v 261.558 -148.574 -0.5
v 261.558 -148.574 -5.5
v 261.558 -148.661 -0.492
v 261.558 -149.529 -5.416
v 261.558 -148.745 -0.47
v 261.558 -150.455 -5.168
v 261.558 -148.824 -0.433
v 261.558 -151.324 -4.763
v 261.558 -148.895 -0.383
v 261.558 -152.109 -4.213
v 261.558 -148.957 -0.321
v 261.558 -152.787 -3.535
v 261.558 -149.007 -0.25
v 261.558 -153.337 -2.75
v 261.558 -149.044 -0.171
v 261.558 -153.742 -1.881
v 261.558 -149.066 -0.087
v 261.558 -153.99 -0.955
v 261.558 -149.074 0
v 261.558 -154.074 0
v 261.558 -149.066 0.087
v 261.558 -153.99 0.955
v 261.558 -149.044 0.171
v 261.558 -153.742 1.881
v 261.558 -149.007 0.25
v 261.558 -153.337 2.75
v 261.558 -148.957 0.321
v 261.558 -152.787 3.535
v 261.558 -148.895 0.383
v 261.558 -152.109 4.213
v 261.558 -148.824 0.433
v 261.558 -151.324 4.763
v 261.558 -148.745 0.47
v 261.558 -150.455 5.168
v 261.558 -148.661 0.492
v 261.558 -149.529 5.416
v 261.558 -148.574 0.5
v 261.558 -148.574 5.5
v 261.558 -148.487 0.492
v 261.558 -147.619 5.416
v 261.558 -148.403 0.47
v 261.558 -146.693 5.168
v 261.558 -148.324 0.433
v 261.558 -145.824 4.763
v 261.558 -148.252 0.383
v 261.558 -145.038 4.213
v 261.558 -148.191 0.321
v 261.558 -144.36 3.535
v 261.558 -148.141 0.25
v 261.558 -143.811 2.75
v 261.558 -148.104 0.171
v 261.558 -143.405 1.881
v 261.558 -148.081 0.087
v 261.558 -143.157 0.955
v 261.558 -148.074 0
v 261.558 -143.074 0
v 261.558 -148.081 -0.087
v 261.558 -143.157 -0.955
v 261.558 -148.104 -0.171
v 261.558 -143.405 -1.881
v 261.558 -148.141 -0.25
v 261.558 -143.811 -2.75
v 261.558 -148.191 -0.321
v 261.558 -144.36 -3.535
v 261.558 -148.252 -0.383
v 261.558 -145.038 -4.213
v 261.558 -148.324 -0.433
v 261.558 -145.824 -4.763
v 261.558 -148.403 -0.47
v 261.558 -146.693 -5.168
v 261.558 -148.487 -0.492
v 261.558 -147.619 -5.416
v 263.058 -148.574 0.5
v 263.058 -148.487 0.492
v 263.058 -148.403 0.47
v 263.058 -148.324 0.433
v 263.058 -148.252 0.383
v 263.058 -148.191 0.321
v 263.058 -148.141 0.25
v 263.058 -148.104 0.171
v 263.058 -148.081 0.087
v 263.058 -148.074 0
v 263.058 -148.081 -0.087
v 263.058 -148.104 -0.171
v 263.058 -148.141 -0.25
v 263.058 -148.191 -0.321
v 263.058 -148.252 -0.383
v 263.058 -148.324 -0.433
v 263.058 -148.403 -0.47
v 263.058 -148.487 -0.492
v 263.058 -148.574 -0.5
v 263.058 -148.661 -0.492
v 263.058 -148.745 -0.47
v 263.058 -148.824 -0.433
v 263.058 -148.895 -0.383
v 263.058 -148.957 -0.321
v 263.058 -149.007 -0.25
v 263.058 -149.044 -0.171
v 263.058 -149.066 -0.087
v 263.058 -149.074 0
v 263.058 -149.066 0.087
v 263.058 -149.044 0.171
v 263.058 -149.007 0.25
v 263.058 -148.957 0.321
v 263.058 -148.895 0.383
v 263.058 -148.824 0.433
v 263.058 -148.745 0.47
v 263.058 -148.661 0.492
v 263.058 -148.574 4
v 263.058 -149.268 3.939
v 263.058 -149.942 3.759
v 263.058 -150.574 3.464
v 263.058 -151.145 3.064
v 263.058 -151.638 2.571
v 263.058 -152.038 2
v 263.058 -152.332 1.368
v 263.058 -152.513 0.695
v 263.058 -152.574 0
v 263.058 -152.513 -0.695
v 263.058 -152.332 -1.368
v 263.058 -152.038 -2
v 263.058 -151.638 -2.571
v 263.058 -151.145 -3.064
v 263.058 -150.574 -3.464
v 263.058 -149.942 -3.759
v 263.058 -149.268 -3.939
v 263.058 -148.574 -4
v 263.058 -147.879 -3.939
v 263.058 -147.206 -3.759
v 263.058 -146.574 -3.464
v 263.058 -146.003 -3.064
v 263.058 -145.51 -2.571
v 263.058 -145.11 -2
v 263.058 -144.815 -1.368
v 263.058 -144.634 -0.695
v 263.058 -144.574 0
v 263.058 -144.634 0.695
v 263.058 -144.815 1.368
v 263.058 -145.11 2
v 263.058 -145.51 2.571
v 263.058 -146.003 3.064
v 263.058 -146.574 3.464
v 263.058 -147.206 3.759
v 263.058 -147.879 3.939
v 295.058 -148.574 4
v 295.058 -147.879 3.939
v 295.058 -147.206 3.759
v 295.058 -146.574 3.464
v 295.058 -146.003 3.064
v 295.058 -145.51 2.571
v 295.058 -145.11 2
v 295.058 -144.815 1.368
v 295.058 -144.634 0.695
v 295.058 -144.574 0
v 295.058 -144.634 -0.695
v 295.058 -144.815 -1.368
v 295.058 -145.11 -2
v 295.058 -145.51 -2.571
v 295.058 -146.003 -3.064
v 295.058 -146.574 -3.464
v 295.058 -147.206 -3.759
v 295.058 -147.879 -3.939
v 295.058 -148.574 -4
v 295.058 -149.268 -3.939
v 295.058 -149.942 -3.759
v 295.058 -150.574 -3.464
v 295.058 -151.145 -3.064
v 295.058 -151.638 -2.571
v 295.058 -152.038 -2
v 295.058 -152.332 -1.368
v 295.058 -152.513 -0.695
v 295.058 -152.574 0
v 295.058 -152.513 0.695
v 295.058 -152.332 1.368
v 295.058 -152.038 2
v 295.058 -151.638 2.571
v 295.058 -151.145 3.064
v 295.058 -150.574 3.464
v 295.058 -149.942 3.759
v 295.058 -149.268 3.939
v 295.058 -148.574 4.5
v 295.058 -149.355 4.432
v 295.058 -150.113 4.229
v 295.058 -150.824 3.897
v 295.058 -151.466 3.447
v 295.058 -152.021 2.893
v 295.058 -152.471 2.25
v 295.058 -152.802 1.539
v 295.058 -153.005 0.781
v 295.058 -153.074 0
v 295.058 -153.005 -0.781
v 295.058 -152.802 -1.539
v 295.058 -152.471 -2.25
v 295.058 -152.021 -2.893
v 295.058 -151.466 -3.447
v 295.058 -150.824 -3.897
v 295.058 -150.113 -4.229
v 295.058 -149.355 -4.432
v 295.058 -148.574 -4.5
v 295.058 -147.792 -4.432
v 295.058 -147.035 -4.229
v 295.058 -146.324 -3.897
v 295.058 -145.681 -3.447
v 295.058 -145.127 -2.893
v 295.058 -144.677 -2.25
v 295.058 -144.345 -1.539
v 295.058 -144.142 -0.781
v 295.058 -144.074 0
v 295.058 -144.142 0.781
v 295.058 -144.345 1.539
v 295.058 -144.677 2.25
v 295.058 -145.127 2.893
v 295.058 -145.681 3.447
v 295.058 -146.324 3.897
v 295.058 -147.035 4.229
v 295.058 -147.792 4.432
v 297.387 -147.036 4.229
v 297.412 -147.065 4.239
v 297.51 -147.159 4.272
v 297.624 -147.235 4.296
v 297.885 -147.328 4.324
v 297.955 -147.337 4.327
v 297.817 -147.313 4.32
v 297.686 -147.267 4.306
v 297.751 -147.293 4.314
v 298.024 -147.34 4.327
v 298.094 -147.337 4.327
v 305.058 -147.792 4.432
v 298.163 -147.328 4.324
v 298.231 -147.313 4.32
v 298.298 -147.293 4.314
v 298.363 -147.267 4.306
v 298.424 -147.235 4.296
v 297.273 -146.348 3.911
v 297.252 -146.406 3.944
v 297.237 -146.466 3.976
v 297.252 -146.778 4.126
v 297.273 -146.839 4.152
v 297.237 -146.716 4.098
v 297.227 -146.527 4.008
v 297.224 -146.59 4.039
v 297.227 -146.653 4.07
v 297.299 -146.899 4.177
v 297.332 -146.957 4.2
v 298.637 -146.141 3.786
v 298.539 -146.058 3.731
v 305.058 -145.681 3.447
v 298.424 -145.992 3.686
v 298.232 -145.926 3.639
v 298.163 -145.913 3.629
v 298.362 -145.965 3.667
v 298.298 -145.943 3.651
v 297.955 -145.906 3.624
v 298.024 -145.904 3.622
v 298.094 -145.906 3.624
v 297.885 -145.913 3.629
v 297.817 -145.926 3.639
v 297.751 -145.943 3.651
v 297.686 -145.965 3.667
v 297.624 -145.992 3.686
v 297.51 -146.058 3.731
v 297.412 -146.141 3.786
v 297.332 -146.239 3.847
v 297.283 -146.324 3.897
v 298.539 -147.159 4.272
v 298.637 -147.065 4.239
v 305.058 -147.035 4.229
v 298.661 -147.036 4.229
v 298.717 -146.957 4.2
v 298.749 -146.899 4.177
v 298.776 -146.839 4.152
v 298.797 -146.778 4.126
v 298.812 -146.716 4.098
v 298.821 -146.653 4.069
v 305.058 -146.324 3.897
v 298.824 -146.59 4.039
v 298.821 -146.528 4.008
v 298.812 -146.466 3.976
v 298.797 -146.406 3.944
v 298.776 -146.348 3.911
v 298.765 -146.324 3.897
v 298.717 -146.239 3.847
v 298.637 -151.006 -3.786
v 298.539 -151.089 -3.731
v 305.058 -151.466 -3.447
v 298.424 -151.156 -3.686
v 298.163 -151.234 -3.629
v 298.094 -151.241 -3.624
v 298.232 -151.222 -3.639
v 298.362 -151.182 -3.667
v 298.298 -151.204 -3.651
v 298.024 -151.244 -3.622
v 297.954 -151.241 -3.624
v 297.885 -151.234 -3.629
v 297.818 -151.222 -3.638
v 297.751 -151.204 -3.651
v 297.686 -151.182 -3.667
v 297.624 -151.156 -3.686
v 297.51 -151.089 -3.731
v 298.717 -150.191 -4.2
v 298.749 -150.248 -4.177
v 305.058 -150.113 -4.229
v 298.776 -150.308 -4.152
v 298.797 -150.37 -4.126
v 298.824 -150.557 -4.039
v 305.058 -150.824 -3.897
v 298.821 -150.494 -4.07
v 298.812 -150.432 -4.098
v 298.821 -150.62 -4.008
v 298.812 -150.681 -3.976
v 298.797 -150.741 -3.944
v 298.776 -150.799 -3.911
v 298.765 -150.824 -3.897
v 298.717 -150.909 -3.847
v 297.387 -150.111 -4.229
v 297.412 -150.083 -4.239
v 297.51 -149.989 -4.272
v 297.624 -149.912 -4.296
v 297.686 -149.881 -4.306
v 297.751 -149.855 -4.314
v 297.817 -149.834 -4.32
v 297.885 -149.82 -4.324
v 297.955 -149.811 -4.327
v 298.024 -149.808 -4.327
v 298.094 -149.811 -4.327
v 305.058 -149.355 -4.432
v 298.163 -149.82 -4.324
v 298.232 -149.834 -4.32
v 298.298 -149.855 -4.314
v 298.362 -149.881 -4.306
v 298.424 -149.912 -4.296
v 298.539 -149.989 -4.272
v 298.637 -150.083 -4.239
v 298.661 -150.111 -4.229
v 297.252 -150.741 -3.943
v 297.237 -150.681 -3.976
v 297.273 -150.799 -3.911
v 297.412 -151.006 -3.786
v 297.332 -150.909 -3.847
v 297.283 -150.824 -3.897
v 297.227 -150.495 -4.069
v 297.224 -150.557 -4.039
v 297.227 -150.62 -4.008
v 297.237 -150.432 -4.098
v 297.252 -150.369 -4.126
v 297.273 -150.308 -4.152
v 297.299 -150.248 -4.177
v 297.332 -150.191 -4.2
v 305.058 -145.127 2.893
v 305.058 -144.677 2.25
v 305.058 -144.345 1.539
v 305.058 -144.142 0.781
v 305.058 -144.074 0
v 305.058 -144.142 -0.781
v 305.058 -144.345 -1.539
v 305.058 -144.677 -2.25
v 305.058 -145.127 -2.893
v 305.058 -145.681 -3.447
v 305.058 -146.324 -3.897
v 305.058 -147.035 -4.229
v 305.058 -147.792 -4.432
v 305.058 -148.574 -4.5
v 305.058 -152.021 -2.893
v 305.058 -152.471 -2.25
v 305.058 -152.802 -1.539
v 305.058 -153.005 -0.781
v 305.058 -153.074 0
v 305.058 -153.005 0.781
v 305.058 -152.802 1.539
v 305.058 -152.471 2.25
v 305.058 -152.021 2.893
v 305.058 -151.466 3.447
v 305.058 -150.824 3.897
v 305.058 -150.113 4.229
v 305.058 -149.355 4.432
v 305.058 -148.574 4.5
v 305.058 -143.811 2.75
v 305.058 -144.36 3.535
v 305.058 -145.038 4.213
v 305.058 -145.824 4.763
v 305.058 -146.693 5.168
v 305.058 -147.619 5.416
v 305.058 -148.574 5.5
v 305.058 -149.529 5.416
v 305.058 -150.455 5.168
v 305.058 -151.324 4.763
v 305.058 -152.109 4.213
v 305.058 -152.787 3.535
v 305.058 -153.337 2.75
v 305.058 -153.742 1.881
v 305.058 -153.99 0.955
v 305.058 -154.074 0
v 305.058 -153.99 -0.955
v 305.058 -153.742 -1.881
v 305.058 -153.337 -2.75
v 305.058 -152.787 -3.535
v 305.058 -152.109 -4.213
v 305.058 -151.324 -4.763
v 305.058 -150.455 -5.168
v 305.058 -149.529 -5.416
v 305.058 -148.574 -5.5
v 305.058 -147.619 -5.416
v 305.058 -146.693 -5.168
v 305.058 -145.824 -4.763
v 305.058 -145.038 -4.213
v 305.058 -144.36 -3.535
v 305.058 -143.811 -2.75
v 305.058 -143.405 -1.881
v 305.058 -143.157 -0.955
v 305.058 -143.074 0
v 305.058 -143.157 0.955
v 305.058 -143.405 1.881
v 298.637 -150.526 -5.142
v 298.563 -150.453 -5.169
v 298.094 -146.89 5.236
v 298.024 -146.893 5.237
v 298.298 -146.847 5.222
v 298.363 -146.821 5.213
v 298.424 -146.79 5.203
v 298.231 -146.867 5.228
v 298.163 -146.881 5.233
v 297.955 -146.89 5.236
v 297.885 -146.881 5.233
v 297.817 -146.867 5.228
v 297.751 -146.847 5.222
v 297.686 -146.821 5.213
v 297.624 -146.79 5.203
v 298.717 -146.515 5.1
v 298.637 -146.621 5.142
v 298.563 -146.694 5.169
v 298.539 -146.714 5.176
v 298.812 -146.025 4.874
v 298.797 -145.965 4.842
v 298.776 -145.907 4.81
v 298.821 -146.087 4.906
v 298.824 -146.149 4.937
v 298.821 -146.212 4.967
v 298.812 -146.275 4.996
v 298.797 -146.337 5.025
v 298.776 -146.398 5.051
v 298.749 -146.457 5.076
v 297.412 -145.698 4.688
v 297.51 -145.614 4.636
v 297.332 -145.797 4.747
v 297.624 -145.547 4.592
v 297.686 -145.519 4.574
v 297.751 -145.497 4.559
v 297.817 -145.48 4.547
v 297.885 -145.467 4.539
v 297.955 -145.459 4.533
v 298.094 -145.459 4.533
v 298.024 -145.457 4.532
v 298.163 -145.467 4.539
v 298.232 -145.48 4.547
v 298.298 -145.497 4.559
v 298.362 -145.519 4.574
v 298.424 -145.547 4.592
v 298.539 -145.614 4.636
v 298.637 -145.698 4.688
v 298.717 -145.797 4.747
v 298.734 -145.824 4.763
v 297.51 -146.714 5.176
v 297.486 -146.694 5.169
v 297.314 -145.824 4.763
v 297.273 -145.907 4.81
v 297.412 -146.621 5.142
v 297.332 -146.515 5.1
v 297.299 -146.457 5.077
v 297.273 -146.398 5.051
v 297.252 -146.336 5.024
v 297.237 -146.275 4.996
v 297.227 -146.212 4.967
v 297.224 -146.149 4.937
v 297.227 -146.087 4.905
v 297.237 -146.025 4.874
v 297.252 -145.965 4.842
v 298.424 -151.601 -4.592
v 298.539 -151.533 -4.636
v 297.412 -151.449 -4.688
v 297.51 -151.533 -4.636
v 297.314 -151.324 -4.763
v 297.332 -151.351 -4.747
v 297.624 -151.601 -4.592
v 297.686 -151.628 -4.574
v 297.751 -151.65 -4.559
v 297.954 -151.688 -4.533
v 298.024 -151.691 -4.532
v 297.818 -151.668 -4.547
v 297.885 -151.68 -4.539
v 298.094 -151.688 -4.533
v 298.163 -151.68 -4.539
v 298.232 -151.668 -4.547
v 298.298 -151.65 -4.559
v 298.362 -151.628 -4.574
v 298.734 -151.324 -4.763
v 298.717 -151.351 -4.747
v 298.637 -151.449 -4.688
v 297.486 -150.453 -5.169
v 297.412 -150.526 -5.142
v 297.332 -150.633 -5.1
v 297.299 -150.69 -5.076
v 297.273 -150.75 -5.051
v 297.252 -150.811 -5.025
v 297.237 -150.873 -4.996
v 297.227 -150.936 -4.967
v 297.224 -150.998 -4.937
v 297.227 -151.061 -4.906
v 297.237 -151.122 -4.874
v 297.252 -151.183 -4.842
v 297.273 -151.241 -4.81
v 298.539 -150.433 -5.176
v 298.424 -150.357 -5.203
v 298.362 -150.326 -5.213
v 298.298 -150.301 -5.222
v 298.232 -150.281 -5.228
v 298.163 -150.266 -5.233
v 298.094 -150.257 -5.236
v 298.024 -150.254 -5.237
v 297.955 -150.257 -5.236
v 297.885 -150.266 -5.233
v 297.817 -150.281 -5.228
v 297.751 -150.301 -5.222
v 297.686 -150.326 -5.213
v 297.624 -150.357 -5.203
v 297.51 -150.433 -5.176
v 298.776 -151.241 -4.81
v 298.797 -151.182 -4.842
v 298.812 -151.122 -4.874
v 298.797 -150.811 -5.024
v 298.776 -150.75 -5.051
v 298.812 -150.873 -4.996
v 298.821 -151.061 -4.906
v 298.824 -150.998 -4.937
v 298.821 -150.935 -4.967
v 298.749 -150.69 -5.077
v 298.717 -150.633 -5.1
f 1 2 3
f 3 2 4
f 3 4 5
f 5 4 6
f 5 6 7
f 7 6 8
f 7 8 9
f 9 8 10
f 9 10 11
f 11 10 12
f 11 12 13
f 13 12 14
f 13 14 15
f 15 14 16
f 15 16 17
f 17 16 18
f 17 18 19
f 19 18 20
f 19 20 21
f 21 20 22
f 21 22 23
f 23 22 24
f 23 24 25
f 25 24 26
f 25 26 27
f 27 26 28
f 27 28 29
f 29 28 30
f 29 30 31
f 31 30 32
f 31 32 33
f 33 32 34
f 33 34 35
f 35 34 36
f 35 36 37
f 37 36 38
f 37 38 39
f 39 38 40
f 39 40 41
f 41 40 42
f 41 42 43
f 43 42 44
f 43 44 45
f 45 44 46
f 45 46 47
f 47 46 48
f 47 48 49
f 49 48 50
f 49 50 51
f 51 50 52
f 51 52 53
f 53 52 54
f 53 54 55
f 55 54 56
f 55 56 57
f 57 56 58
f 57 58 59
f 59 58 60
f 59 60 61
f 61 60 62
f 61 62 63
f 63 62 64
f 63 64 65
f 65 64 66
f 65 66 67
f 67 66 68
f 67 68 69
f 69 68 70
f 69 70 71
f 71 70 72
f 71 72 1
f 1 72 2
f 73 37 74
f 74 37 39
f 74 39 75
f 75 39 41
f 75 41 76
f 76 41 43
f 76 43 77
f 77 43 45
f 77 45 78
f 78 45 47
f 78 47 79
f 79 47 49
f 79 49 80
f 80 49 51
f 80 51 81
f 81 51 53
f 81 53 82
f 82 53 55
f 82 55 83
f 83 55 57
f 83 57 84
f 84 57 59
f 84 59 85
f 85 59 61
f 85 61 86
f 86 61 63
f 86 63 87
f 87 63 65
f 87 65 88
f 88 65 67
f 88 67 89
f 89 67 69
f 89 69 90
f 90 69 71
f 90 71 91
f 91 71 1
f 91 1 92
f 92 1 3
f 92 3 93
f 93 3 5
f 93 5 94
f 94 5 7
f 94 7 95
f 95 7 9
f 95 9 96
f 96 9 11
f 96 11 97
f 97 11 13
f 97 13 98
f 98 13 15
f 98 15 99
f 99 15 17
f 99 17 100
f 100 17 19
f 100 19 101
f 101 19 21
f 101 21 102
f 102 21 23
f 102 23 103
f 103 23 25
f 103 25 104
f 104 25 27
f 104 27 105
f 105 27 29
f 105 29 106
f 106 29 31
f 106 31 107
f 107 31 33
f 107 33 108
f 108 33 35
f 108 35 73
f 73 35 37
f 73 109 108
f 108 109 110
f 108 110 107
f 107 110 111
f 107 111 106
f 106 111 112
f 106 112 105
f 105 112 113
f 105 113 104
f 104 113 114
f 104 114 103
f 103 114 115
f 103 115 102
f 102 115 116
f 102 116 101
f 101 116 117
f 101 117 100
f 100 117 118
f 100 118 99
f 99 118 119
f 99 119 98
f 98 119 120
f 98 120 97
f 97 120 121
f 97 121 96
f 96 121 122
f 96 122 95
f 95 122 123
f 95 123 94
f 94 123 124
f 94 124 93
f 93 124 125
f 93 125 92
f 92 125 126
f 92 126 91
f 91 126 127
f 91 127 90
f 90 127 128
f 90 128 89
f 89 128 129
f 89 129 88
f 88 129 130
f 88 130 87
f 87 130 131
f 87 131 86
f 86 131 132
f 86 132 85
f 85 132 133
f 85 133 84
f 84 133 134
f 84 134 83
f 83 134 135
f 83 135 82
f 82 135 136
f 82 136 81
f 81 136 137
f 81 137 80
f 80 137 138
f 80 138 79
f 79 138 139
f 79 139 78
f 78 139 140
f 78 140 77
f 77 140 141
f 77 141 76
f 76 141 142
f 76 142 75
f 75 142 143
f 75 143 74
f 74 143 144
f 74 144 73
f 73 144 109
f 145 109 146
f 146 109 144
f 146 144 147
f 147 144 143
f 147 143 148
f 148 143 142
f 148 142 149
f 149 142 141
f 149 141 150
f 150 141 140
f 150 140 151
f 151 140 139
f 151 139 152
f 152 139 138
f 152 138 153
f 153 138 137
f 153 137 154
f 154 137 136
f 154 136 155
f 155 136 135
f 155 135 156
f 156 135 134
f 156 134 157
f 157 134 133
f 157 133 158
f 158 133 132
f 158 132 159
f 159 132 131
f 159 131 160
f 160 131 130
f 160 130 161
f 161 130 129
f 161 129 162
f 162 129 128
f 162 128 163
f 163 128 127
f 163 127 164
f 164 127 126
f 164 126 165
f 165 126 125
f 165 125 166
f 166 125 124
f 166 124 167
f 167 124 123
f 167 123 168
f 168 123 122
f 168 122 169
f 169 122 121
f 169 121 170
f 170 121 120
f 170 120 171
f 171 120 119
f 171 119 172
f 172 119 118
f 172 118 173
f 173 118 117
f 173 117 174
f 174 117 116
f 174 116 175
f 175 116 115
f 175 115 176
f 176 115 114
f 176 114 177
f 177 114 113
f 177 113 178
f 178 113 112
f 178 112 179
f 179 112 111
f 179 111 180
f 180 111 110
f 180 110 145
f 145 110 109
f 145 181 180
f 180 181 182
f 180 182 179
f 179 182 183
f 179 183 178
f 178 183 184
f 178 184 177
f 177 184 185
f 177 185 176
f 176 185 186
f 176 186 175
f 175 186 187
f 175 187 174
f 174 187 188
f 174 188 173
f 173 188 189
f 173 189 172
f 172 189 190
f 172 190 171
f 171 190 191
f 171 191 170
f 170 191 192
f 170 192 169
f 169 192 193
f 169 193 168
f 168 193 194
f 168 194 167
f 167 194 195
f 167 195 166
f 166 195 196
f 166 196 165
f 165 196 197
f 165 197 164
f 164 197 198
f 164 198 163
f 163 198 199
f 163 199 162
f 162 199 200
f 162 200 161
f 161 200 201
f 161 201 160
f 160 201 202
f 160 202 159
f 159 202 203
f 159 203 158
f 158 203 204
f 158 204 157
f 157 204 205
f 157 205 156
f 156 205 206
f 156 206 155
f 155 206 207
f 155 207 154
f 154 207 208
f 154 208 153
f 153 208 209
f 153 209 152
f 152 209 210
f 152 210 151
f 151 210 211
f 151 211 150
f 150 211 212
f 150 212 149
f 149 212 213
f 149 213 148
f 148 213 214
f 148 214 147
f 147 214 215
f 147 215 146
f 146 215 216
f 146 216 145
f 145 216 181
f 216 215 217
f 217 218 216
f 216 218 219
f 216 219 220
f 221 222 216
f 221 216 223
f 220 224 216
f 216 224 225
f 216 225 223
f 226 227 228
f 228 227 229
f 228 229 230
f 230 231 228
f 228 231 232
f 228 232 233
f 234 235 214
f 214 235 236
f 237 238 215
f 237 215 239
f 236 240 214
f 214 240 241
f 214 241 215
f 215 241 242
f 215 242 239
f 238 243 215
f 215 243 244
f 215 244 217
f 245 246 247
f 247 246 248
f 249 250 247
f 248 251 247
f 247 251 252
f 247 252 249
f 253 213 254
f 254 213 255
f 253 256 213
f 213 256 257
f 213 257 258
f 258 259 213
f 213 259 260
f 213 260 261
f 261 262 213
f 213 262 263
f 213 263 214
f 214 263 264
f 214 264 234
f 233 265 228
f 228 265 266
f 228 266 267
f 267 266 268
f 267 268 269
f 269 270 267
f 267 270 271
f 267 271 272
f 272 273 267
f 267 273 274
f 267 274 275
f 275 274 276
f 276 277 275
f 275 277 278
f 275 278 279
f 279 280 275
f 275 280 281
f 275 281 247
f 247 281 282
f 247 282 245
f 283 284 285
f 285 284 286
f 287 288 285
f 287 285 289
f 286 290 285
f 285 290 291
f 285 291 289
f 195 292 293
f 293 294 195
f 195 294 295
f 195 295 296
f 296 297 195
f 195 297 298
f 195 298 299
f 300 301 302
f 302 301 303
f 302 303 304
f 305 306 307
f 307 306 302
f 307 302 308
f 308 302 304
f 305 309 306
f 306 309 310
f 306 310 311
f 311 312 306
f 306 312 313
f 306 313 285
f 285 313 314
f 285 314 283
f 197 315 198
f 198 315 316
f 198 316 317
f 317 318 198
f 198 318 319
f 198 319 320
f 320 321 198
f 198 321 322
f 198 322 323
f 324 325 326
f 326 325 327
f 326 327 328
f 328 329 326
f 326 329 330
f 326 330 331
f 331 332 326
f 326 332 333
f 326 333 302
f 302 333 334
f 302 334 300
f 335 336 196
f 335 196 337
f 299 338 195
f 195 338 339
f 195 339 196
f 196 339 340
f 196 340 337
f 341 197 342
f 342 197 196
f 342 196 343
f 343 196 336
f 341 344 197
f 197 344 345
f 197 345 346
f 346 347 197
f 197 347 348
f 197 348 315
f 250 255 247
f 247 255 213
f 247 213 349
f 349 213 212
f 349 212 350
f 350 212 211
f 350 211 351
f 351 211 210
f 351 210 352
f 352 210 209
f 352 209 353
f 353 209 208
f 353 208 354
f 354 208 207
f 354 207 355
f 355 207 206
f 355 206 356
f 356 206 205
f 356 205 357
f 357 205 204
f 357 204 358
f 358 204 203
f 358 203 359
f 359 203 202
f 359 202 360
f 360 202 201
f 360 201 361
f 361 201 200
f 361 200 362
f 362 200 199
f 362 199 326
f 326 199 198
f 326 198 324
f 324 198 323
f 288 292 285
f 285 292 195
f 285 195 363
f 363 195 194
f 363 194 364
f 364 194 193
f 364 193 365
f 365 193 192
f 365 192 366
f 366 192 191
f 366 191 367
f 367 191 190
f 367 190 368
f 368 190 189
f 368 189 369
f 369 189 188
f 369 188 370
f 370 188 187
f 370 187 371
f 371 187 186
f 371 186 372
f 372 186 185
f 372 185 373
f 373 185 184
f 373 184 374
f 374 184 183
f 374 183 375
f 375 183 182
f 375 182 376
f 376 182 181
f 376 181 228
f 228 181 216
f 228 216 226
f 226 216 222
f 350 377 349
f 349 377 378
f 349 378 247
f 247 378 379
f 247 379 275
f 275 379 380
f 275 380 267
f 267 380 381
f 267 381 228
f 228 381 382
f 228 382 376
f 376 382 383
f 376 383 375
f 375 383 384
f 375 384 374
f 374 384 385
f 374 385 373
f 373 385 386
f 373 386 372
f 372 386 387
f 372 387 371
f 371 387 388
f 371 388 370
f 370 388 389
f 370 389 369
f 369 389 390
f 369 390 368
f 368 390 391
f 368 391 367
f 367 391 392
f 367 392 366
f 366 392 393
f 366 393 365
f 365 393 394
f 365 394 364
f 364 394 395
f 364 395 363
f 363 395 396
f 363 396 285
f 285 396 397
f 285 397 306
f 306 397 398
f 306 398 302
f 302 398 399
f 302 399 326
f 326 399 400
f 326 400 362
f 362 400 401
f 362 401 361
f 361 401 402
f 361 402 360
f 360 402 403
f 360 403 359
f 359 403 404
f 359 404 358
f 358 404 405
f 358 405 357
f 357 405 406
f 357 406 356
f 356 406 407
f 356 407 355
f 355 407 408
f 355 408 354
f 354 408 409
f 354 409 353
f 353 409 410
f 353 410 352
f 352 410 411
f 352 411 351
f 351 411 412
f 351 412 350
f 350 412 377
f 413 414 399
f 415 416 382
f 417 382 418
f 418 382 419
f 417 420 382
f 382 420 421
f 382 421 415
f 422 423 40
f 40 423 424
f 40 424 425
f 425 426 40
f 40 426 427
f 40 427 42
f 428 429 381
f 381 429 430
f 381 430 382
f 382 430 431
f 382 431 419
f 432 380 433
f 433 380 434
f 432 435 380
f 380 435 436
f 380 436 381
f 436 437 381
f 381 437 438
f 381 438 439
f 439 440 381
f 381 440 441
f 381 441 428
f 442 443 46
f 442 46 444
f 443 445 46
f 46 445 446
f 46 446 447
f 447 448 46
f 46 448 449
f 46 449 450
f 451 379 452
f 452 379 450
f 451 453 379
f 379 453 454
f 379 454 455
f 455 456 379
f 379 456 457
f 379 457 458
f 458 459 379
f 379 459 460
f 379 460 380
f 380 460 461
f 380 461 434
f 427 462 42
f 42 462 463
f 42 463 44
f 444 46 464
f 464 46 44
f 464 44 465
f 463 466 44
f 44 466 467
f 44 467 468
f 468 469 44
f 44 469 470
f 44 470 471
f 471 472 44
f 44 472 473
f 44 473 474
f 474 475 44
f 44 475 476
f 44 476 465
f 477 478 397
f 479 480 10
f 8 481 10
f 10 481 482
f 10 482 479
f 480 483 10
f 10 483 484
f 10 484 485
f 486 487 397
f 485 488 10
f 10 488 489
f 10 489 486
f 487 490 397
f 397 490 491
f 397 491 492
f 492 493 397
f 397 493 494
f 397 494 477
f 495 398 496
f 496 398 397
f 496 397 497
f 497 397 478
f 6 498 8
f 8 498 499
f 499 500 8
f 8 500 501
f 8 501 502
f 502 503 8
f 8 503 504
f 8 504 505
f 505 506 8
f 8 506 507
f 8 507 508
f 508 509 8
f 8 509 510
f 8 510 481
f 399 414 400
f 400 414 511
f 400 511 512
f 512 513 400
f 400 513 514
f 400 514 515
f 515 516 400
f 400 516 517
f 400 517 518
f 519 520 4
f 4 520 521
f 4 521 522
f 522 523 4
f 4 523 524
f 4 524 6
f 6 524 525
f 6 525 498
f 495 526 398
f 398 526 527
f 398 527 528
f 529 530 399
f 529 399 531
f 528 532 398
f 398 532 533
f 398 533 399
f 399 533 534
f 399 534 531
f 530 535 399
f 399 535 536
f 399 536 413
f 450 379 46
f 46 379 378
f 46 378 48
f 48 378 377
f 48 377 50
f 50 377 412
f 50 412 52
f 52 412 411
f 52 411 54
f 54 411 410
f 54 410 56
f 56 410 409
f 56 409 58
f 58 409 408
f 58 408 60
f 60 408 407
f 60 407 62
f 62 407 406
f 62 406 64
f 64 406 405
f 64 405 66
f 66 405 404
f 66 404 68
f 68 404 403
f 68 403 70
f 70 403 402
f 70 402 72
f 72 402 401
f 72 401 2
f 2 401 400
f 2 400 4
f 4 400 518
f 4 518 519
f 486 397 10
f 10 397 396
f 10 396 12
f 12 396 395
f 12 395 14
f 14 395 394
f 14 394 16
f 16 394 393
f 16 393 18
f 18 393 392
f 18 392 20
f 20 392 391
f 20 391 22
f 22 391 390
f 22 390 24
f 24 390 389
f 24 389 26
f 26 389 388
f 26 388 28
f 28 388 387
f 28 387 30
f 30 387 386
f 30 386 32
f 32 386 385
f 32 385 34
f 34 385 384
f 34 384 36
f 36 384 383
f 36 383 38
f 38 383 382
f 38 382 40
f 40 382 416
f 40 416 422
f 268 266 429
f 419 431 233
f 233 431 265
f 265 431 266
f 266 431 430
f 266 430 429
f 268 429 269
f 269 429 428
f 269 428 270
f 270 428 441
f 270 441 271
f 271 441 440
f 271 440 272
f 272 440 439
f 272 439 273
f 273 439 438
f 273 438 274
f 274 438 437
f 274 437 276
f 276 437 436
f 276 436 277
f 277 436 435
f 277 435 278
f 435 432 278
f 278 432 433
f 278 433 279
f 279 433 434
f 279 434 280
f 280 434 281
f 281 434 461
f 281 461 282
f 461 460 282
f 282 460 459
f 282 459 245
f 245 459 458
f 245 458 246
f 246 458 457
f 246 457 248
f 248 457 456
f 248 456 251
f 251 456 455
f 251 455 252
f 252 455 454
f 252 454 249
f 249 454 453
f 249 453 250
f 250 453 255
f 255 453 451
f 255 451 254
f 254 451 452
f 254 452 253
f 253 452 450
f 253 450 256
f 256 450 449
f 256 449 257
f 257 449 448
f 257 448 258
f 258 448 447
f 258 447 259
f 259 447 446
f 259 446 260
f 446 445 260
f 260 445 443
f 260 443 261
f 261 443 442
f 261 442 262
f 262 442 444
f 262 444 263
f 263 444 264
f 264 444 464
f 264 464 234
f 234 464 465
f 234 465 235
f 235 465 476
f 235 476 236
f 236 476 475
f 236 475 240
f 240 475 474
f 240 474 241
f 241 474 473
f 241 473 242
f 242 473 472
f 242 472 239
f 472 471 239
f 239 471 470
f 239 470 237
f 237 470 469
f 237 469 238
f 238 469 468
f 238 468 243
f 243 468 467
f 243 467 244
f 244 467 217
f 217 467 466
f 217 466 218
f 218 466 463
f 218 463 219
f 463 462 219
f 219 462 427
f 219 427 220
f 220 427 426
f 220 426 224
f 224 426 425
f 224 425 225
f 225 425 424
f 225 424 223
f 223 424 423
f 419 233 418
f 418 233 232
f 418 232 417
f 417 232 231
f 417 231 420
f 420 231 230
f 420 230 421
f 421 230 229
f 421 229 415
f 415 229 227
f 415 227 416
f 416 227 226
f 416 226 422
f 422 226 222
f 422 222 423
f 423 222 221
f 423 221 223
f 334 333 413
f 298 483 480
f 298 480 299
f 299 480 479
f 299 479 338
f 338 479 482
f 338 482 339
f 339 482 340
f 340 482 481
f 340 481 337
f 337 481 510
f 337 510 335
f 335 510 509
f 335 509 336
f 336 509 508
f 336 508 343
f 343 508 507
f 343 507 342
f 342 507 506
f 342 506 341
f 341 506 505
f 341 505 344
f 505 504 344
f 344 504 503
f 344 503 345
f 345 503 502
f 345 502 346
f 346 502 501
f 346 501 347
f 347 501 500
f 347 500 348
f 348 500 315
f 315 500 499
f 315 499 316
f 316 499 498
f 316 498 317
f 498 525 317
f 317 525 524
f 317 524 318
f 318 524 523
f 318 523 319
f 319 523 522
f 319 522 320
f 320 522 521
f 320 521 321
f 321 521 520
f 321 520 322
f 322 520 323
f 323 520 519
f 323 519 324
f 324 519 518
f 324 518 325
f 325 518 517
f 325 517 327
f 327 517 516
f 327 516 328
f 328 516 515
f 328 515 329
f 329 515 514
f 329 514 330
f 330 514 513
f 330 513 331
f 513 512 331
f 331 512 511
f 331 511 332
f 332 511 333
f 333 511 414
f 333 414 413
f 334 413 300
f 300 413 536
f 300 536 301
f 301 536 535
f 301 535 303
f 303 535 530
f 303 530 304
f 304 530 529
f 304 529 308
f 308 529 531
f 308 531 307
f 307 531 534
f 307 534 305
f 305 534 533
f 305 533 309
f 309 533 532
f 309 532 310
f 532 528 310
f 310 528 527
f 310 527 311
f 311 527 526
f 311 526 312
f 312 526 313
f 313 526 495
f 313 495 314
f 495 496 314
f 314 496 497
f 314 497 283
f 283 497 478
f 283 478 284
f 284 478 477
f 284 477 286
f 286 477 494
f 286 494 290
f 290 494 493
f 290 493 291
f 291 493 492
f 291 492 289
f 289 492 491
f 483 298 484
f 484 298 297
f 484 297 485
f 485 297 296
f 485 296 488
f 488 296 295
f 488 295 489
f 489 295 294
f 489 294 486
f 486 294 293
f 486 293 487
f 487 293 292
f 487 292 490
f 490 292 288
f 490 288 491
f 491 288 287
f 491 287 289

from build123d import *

# Parameters (mm, degrees)
SKETCH4_R          = 0.8
CUT_EXTRUDE1_DEPTH = 336.963729195


with BuildPart() as part:
    # Sketch3 → Revolve19 (revolve)
    with BuildSketch(Plane.XY):
        Polygon((295.058388758, -144.573704322), (295.058388758, -144.073704322), (305.058388758, -144.073704322), (305.058388758, -143.073704322), (261.558388758, -143.073704322), (261.558388758, -144.323704322), (261.558388758, -148.073704322), (263.058388758, -148.073704322), (263.058388758, -144.573704322), align=None)
    revolve(axis=Axis((263.058388758, -148.573704322, 0), (1, 0, 0)))

    # Sketch4 → Cut-Extrude1 (cut, through all)
    with BuildSketch(Plane(origin=(0, -26.447590039, -53.851341485), x_dir=(1, 0, 0), z_dir=(0, 0.4408273328513724, 0.8975919243237127))):
        with Locations((298.024345503, -133.358557166)):
            Circle(SKETCH4_R)
    extrude(amount=-CUT_EXTRUDE1_DEPTH, mode=Mode.SUBTRACT)


solid = part.part
